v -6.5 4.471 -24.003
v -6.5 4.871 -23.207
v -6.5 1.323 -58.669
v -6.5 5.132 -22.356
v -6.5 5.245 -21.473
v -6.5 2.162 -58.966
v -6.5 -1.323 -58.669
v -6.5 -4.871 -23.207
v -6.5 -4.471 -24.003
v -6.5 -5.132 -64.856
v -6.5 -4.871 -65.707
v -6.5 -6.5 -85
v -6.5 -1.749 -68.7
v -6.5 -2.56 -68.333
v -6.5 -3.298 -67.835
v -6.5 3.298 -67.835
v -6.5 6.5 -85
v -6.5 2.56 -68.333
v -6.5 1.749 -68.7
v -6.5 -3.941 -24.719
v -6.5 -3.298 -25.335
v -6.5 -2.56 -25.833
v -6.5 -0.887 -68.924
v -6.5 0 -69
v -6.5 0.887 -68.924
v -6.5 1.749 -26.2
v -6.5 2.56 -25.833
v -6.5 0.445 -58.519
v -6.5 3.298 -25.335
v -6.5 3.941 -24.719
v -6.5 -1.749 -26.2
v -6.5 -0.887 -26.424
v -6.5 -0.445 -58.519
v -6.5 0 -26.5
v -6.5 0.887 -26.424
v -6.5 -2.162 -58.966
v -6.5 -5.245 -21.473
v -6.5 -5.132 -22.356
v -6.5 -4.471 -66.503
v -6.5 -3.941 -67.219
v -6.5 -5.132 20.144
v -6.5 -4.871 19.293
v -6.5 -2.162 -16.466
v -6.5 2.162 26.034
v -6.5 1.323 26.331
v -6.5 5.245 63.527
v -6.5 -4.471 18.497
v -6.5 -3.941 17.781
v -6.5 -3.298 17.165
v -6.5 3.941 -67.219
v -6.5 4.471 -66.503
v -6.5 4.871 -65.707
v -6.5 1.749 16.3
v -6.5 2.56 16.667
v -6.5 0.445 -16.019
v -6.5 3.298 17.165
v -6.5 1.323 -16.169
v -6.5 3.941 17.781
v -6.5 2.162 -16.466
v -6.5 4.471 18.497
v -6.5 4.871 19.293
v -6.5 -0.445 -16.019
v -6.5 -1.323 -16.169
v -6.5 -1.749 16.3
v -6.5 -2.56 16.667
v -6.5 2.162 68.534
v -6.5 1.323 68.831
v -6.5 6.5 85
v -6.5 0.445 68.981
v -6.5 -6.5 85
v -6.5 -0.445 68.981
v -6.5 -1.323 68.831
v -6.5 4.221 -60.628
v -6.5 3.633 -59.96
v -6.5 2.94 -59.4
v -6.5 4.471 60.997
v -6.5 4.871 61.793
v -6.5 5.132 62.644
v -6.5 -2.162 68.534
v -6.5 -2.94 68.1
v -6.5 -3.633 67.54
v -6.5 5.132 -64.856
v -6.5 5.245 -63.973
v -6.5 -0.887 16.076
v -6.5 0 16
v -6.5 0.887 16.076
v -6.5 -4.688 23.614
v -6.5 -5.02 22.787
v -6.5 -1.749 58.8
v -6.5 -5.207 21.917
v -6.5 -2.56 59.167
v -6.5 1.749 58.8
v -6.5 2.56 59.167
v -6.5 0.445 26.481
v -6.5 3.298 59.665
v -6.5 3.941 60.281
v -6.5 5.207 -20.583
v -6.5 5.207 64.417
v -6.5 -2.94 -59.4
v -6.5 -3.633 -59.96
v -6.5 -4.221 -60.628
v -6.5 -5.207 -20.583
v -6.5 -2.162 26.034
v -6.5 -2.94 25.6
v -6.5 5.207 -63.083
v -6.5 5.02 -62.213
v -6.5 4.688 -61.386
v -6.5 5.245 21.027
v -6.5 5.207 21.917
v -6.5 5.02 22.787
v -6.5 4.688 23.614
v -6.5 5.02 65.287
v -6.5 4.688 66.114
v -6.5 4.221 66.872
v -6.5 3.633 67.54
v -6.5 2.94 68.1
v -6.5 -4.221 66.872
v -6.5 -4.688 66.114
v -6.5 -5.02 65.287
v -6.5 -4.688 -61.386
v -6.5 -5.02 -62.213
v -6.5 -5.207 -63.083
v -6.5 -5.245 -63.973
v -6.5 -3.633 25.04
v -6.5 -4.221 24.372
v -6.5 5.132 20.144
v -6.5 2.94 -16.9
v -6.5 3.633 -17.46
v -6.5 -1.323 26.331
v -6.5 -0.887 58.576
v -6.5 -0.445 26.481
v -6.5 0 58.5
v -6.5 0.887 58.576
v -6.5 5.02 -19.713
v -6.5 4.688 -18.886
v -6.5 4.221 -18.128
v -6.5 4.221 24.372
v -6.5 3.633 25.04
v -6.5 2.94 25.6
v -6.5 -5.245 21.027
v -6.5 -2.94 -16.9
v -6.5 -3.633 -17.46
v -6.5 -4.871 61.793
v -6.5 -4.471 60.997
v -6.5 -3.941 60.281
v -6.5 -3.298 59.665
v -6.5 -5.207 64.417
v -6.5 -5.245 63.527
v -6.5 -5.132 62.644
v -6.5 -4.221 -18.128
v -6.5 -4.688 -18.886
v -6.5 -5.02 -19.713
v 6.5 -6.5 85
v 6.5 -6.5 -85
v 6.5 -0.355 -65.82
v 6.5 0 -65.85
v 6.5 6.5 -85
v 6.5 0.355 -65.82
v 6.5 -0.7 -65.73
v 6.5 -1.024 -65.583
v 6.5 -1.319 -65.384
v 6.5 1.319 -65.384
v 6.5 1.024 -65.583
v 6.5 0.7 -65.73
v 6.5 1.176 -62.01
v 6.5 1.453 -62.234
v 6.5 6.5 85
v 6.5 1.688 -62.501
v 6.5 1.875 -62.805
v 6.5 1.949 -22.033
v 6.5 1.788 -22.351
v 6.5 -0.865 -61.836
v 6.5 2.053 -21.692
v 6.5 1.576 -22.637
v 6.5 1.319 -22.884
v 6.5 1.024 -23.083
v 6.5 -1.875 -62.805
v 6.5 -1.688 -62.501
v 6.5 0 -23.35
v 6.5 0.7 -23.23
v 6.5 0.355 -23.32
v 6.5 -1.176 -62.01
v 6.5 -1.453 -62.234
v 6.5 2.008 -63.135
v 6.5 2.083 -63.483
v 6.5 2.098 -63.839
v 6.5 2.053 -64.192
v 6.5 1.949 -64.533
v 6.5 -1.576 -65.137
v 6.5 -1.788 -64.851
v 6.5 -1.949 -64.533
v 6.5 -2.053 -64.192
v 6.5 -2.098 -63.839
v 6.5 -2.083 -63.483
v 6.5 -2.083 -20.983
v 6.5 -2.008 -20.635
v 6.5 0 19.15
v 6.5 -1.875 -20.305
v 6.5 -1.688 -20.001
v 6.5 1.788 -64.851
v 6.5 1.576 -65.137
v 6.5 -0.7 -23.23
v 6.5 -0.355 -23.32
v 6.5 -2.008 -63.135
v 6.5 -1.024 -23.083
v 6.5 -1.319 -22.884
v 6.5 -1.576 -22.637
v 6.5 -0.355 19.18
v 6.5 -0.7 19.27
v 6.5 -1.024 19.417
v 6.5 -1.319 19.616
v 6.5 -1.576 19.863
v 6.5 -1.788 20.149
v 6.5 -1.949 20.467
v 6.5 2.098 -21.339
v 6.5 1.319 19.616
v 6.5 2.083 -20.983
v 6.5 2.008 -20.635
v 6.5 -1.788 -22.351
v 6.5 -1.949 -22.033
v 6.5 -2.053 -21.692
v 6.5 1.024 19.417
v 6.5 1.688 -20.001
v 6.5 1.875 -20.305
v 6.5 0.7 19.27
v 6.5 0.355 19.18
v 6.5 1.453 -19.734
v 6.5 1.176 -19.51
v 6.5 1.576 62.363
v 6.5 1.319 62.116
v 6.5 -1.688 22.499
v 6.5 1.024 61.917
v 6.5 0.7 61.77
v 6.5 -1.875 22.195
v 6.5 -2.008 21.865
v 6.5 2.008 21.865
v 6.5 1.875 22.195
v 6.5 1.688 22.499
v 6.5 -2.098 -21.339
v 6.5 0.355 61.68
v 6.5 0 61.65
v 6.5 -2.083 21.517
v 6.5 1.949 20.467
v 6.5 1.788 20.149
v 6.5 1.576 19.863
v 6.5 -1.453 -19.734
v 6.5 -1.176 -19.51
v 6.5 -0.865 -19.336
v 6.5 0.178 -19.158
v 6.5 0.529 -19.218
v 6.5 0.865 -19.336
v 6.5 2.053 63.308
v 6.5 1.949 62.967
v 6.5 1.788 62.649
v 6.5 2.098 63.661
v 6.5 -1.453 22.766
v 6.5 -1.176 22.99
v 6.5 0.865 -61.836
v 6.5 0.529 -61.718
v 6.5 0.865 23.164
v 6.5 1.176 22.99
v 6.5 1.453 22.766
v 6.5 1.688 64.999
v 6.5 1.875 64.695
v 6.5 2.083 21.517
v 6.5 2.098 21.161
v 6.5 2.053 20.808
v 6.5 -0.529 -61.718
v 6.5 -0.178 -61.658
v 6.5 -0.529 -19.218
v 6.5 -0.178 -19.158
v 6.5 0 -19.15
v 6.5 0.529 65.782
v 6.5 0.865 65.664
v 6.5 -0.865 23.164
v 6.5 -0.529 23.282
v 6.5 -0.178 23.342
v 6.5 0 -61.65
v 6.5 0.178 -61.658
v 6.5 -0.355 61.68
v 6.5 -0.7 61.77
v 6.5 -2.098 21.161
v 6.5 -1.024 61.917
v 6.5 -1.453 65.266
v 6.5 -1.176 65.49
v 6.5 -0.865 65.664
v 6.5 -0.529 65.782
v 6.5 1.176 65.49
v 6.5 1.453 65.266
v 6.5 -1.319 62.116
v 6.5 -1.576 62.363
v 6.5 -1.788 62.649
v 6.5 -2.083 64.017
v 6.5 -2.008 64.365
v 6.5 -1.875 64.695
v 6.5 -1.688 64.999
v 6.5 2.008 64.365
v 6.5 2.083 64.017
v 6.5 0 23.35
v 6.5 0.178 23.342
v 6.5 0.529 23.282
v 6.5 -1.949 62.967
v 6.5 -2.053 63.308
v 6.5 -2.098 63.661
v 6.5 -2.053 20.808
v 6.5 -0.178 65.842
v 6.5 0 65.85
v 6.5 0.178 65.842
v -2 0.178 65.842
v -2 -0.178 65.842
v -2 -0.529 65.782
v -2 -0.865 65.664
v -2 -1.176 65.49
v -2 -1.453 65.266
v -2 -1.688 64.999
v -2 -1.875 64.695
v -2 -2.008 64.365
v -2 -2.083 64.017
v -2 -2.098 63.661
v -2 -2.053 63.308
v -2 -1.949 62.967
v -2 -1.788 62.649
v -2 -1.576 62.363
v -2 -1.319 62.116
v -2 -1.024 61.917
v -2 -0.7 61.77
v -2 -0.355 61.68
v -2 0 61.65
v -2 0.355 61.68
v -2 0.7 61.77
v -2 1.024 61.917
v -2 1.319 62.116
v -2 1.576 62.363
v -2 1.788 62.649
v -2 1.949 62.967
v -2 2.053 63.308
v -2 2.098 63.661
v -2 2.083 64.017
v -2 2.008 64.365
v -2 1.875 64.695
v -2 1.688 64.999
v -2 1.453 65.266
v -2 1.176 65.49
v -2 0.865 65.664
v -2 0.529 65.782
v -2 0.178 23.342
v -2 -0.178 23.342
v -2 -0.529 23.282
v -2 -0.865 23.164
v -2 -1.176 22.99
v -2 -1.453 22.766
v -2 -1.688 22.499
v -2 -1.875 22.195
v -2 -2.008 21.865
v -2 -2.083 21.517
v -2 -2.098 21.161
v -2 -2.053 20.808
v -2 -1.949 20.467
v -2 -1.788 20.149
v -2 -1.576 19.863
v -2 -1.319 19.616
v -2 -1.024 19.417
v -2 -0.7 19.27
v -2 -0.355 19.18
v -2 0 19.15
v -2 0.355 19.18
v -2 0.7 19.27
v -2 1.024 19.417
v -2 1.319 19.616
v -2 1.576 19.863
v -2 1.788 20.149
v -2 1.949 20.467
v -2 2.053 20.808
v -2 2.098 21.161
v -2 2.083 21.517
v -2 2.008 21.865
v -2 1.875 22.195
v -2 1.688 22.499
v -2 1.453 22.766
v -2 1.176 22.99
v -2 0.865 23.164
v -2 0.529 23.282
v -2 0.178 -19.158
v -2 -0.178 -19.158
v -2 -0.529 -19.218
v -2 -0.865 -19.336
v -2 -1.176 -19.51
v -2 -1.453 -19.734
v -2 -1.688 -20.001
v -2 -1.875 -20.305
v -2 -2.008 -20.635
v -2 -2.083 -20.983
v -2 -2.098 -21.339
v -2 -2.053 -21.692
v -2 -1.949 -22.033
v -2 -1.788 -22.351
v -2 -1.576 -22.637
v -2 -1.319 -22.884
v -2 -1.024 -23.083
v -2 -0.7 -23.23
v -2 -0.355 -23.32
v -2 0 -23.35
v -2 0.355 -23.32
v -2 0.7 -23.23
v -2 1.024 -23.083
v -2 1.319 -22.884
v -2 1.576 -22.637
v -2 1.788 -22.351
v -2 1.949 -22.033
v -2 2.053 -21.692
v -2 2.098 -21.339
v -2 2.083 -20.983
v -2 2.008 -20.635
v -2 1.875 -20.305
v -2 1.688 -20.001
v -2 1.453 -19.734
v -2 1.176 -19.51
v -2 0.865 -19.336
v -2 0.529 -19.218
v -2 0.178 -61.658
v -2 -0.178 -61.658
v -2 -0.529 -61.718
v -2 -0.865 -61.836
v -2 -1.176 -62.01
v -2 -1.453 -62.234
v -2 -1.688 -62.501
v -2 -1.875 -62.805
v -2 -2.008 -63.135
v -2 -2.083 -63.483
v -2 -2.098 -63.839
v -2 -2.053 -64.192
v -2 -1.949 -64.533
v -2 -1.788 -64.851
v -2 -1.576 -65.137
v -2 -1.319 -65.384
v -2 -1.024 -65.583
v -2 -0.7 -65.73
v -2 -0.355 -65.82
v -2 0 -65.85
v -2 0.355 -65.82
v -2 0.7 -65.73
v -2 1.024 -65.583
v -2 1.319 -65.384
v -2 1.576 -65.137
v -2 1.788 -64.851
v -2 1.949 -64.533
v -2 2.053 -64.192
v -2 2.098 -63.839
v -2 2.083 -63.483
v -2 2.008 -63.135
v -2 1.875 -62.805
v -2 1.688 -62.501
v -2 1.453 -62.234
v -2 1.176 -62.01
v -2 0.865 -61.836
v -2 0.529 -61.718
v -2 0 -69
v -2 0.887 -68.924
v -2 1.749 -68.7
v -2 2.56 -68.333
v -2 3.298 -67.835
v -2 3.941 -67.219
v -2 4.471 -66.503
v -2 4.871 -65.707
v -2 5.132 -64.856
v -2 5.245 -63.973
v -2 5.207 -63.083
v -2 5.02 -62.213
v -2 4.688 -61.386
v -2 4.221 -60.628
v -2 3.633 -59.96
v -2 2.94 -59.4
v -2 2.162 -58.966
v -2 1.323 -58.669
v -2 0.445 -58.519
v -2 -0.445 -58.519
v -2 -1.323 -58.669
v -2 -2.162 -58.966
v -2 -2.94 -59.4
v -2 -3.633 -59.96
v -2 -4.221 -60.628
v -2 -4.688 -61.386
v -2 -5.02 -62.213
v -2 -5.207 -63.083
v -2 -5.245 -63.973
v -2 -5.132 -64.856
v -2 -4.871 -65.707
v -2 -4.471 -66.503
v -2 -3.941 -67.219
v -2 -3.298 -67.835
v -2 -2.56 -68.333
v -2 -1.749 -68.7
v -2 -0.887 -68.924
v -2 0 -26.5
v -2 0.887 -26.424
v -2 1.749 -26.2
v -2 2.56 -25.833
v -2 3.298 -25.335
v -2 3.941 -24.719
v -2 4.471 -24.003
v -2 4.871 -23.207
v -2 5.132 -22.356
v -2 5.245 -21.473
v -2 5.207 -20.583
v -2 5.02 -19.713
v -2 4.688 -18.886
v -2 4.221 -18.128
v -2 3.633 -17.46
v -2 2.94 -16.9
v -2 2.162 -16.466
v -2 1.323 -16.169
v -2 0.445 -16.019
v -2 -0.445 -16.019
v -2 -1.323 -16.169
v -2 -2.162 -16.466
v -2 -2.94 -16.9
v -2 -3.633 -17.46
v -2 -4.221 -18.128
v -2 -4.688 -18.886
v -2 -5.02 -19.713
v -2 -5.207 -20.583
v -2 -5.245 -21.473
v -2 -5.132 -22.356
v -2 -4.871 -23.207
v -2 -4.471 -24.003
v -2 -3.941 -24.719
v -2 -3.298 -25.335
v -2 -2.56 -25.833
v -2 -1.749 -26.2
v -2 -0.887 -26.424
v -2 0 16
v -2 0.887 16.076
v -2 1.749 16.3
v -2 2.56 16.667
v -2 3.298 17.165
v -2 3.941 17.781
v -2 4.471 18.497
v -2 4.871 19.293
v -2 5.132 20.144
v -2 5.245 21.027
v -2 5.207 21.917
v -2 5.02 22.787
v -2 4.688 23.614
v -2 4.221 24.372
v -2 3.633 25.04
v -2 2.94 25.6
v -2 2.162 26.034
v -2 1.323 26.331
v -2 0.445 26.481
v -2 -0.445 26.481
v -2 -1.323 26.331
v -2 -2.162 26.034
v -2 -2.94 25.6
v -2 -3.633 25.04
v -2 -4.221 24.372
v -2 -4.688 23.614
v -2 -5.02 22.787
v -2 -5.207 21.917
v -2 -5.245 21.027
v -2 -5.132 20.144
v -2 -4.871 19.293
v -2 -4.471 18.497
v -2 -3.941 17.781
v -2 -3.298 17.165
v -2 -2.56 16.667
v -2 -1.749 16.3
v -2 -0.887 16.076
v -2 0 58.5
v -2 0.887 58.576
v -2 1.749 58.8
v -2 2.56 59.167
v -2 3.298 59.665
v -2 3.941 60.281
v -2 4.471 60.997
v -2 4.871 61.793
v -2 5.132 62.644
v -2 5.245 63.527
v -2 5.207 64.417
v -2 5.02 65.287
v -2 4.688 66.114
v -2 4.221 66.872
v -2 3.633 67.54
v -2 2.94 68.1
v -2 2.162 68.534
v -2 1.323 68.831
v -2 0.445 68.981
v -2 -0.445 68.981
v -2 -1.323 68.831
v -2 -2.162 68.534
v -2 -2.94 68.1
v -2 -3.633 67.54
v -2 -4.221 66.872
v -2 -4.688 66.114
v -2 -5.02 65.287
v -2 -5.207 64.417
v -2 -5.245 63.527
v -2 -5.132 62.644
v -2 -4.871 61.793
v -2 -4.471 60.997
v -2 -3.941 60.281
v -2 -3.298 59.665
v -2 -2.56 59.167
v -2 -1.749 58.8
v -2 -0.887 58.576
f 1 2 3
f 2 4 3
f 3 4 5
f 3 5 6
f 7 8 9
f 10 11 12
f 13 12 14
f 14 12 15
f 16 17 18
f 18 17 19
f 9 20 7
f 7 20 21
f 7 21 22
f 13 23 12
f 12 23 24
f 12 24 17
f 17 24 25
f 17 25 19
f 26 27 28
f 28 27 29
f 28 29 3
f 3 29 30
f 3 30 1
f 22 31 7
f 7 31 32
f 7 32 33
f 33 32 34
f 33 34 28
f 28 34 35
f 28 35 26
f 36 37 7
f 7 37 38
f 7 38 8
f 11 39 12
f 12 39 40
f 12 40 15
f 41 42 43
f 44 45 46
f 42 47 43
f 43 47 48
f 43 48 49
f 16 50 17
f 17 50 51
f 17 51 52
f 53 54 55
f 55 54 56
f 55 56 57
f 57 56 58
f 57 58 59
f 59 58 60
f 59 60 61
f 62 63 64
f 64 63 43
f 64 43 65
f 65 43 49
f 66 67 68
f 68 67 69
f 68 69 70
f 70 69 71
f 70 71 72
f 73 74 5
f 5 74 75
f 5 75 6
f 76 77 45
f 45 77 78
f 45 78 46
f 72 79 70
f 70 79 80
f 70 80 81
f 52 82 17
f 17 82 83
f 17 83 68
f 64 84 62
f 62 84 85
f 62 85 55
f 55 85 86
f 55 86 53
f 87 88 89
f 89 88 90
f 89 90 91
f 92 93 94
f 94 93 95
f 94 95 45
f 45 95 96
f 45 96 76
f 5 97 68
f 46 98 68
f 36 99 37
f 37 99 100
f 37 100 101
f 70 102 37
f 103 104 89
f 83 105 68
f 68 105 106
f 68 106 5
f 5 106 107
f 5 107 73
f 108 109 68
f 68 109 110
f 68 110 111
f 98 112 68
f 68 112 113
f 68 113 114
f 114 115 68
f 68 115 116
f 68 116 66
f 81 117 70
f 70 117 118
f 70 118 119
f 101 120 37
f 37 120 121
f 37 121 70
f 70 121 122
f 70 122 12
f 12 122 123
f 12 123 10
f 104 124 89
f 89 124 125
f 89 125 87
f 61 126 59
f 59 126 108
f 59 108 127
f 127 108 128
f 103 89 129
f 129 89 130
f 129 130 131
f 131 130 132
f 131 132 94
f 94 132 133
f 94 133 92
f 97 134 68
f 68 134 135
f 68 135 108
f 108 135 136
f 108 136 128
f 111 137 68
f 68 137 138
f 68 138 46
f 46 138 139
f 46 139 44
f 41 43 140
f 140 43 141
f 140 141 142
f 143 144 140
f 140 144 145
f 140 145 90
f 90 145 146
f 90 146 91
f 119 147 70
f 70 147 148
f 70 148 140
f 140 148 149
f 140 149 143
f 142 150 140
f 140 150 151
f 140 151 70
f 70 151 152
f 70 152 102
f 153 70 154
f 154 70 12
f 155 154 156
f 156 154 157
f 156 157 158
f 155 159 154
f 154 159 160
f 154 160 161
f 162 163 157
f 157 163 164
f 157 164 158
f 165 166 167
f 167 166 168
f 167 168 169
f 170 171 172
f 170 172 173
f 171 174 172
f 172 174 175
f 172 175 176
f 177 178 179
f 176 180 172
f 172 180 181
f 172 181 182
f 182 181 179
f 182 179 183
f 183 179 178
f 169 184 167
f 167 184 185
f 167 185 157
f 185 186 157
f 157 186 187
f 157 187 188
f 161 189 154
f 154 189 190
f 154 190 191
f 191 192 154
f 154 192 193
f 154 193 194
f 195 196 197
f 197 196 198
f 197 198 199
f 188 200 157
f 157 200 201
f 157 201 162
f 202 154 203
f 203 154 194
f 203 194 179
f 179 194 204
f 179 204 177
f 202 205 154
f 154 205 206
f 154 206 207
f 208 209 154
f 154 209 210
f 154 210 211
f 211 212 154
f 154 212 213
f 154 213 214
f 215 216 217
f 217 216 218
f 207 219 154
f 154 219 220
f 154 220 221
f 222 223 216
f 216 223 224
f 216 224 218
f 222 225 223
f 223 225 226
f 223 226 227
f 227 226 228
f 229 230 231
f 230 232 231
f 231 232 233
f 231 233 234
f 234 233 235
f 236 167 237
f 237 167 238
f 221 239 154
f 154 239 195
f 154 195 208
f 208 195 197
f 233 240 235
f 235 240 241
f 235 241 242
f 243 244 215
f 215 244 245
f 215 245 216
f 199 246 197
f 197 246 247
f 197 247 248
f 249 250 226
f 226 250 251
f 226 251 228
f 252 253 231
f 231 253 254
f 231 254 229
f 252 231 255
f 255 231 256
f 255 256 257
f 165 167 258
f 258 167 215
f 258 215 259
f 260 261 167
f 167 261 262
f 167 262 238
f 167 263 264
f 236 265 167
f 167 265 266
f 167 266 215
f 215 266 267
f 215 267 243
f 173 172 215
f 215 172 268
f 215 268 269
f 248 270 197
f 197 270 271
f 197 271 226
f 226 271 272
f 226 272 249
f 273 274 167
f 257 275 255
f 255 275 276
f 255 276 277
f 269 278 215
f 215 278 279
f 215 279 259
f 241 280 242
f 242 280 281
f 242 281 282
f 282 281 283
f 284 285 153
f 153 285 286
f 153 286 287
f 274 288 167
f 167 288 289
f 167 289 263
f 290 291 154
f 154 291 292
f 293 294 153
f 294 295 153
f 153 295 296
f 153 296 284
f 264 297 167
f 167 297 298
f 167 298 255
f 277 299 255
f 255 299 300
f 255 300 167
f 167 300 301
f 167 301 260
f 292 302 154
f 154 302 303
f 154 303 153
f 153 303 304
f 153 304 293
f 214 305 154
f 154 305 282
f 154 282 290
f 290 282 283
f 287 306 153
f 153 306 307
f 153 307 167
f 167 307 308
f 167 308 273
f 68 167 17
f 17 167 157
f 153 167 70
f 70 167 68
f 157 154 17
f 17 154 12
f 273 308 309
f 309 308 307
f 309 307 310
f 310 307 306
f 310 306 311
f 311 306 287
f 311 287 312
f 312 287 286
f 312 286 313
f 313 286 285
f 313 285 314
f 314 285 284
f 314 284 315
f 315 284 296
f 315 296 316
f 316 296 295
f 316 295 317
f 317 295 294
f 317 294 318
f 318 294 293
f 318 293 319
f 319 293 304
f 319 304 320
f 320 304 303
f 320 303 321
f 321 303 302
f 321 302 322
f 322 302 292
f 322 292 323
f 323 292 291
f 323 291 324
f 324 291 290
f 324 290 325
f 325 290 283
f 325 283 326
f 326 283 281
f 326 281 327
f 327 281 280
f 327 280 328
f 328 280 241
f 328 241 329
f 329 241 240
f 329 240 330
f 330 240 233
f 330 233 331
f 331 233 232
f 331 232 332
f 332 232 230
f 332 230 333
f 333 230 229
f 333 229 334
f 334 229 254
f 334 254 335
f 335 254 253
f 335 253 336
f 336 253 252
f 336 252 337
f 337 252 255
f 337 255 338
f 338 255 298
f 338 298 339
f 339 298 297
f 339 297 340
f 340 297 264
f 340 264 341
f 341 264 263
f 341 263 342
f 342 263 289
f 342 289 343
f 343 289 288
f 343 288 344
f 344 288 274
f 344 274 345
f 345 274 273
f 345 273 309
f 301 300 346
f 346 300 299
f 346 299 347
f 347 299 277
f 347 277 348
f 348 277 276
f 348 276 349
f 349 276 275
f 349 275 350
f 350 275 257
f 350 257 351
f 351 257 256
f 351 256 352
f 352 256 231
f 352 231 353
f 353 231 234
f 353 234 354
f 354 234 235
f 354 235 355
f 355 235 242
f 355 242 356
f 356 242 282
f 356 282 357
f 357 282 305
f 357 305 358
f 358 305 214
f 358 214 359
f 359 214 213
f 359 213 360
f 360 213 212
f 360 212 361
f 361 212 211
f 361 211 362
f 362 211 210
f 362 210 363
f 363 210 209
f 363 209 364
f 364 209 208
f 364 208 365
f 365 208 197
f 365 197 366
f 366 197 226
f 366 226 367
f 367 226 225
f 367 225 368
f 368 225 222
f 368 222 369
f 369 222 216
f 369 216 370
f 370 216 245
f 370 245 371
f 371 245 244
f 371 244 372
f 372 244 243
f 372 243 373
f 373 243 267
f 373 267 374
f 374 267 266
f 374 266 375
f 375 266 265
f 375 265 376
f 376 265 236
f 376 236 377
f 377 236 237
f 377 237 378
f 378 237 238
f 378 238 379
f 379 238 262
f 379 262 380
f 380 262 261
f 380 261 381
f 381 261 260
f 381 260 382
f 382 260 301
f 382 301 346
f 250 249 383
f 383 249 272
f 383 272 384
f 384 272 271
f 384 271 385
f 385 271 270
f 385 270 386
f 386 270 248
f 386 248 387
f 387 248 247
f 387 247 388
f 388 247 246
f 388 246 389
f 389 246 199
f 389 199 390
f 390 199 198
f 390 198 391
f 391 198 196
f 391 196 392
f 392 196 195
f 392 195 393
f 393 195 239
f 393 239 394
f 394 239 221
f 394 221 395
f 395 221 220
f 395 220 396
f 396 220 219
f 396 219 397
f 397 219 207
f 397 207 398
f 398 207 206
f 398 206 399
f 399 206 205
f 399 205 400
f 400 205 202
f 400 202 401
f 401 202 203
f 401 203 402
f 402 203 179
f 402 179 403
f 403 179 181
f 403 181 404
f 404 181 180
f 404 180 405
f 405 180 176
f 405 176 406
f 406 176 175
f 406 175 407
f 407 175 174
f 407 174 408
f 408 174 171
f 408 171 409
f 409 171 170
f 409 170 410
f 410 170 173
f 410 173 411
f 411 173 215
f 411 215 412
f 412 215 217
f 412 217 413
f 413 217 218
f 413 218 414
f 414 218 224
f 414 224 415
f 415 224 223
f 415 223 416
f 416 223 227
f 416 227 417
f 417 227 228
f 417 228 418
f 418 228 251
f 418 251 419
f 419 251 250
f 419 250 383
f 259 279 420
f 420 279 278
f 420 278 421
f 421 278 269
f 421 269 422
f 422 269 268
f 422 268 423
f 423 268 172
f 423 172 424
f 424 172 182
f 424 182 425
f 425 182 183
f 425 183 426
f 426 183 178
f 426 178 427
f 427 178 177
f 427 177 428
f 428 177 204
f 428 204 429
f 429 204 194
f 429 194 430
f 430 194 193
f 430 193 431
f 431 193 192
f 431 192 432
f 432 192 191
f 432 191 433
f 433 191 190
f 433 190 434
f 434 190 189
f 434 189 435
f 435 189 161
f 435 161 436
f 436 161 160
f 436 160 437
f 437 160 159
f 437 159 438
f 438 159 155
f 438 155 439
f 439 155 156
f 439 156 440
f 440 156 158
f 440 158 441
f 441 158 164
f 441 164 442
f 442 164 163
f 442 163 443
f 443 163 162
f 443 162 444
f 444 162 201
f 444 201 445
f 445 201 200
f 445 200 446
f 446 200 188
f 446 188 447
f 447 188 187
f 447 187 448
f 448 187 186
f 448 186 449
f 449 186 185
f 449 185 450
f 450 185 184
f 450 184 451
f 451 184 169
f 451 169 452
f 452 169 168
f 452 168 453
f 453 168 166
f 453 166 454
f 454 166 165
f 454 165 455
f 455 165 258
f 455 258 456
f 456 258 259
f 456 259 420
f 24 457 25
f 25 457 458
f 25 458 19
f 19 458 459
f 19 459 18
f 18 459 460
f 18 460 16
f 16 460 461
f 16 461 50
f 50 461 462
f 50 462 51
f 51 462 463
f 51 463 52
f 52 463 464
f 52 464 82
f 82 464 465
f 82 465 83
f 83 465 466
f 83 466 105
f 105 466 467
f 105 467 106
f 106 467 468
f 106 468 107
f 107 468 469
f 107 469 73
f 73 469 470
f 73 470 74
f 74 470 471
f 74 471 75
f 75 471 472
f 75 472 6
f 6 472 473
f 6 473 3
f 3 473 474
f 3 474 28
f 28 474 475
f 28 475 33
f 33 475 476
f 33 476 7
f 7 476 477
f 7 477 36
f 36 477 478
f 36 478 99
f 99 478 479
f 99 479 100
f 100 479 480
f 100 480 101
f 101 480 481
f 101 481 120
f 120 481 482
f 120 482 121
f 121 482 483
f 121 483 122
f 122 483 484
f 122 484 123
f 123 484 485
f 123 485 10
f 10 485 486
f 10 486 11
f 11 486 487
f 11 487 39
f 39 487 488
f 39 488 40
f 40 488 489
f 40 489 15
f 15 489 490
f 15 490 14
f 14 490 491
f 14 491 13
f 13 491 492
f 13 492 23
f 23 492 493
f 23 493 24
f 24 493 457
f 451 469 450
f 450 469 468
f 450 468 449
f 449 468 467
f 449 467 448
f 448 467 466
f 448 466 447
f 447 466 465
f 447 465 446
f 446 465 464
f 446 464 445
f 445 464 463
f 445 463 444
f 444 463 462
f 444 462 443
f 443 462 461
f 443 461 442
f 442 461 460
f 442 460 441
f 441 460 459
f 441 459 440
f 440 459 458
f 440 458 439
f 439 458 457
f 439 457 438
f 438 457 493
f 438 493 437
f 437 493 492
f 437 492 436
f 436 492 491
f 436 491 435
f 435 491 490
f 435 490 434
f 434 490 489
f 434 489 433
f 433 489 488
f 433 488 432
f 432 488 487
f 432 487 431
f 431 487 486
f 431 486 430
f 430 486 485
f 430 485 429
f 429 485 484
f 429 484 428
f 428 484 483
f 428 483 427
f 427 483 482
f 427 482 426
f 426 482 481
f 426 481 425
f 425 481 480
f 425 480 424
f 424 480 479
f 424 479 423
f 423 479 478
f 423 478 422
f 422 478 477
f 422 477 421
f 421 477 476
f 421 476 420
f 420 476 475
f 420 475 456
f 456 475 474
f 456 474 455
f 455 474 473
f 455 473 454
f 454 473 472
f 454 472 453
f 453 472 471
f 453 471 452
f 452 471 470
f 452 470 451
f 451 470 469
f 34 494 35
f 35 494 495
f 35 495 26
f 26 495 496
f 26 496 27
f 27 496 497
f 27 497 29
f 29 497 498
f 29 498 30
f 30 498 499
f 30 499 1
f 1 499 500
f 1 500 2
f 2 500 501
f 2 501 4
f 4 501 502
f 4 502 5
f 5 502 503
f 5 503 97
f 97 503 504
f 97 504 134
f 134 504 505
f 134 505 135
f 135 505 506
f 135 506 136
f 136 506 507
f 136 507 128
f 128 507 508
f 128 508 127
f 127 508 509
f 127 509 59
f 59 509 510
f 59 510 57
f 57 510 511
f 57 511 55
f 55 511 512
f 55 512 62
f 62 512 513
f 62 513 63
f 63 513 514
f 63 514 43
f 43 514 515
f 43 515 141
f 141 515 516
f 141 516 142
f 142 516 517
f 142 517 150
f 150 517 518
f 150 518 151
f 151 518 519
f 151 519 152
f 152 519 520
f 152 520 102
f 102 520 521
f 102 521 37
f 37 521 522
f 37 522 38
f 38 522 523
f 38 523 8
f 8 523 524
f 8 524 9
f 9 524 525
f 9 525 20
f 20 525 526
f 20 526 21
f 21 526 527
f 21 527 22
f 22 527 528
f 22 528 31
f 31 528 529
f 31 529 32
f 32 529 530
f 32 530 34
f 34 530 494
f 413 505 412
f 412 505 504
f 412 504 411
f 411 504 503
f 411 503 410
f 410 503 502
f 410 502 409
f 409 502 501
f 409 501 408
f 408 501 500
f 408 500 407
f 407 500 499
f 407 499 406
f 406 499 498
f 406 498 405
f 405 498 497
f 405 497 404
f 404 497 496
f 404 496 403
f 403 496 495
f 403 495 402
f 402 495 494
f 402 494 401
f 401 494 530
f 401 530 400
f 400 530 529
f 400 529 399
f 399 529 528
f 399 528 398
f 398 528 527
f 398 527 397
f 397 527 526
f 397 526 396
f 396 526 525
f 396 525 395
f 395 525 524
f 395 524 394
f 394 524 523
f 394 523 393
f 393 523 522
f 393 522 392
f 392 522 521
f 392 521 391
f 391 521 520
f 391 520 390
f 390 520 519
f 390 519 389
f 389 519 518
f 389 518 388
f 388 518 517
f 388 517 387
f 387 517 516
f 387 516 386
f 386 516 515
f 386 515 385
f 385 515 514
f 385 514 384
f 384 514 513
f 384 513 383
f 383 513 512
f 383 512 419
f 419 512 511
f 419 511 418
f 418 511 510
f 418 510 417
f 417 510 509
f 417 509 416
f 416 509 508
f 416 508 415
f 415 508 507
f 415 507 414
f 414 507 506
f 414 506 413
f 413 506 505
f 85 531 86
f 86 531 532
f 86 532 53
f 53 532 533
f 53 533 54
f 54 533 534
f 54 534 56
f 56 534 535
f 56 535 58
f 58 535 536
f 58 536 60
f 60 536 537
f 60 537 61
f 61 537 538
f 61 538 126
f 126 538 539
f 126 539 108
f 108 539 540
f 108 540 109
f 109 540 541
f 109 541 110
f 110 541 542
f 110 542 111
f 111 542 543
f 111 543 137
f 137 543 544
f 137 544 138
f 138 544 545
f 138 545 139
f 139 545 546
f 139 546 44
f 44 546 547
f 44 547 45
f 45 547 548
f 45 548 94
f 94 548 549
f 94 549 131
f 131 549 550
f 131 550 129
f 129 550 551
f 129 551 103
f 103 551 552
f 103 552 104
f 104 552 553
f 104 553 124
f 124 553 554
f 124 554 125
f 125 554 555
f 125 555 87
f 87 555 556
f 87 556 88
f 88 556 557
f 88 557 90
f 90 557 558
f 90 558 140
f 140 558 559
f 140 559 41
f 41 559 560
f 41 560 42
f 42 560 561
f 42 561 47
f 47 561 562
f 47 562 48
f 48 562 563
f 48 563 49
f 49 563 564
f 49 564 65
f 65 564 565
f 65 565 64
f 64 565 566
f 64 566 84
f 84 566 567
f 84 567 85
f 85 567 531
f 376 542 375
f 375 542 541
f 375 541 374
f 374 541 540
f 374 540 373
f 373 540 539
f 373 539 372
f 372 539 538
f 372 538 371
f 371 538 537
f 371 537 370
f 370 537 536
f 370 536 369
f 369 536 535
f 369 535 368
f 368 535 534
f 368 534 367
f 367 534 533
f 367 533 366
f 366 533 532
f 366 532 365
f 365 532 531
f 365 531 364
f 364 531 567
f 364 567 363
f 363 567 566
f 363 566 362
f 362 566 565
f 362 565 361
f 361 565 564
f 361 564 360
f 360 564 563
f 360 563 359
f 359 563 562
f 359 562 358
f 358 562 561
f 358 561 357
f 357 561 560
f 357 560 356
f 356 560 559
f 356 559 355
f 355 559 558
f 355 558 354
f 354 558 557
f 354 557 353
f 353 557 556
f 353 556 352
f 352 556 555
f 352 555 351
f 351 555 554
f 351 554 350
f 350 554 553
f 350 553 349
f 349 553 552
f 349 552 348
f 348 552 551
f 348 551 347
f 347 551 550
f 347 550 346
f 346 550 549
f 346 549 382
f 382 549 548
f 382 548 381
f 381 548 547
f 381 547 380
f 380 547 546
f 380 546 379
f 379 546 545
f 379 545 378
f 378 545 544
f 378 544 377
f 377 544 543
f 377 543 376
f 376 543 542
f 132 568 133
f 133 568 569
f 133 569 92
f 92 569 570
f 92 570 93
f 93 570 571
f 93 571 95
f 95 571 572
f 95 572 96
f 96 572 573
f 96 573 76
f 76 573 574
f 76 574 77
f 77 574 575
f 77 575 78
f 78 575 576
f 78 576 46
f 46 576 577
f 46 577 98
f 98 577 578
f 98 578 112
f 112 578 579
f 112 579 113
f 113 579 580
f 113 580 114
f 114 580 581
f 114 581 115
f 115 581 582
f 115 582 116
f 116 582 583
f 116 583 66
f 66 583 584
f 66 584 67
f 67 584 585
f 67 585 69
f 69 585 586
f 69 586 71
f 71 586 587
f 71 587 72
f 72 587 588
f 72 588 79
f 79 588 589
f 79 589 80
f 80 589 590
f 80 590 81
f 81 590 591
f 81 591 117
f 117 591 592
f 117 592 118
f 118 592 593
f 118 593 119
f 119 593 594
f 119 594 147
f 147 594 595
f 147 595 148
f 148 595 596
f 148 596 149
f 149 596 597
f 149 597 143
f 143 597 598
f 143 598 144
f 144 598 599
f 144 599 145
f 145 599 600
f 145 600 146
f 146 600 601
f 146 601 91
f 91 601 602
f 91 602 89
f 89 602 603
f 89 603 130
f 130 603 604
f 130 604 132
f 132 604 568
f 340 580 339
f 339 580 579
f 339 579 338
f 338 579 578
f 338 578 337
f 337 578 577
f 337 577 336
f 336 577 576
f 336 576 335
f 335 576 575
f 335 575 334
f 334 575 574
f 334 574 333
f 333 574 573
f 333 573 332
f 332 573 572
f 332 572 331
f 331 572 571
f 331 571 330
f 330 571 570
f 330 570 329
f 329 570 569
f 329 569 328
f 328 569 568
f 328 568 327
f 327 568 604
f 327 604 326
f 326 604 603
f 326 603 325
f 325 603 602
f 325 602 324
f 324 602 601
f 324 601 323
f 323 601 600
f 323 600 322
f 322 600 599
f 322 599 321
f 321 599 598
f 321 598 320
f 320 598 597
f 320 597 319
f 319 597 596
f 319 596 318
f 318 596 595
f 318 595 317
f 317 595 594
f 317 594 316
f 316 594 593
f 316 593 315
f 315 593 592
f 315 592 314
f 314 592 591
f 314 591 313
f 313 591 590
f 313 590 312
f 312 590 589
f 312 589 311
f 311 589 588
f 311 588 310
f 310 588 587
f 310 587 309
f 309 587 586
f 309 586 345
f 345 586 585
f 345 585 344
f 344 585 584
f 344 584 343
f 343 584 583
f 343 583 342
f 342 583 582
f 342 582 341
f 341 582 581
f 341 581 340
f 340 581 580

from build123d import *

# Parameters (mm, degrees)
SKETCH1_W           = 13
SKETCH1_H           = 13
BOSS_EXTRUDE1_DEPTH = 85
SKETCH2_R           = 2.1
CUT_EXTRUDE1_DEPTH  = 11.5
SKETCH3_R           = 5.25
CUT_EXTRUDE2_DEPTH  = 4.5


with BuildPart() as part:
    # Sketch1 → Boss-Extrude1 (new, symmetric)
    with BuildSketch(Plane.XY):
        Rectangle(SKETCH1_W, SKETCH1_H)
    extrude(amount=BOSS_EXTRUDE1_DEPTH, both=True)

    # Sketch2 → Cut-Extrude1 (cut, symmetric)
    with BuildSketch(Plane(origin=(0, 0, 0), x_dir=(0, 0, -1), z_dir=(1, 0, 0))):
        with Locations((63.75, 0)):
            Circle(SKETCH2_R)
        with Locations((21.25, 0)):
            Circle(SKETCH2_R)
        with Locations((-21.25, 0)):
            Circle(SKETCH2_R)
        with Locations((-63.75, 0)):
            Circle(SKETCH2_R)
    extrude(amount=CUT_EXTRUDE1_DEPTH, both=True, mode=Mode.SUBTRACT)

    # Sketch3 → Cut-Extrude2 (cut, symmetric)
    with BuildSketch(Plane(origin=(-6.5, 0, 0), x_dir=(0, 0, -1), z_dir=(1, 0, 0))):
        with Locations((63.75, 0)):
            Circle(SKETCH3_R)
        with Locations((21.25, 0)):
            Circle(SKETCH3_R)
        with Locations((-21.25, 0)):
            Circle(SKETCH3_R)
        with Locations((-63.75, 0)):
            Circle(SKETCH3_R)
    extrude(amount=CUT_EXTRUDE2_DEPTH, both=True, mode=Mode.SUBTRACT)


solid = part.part
